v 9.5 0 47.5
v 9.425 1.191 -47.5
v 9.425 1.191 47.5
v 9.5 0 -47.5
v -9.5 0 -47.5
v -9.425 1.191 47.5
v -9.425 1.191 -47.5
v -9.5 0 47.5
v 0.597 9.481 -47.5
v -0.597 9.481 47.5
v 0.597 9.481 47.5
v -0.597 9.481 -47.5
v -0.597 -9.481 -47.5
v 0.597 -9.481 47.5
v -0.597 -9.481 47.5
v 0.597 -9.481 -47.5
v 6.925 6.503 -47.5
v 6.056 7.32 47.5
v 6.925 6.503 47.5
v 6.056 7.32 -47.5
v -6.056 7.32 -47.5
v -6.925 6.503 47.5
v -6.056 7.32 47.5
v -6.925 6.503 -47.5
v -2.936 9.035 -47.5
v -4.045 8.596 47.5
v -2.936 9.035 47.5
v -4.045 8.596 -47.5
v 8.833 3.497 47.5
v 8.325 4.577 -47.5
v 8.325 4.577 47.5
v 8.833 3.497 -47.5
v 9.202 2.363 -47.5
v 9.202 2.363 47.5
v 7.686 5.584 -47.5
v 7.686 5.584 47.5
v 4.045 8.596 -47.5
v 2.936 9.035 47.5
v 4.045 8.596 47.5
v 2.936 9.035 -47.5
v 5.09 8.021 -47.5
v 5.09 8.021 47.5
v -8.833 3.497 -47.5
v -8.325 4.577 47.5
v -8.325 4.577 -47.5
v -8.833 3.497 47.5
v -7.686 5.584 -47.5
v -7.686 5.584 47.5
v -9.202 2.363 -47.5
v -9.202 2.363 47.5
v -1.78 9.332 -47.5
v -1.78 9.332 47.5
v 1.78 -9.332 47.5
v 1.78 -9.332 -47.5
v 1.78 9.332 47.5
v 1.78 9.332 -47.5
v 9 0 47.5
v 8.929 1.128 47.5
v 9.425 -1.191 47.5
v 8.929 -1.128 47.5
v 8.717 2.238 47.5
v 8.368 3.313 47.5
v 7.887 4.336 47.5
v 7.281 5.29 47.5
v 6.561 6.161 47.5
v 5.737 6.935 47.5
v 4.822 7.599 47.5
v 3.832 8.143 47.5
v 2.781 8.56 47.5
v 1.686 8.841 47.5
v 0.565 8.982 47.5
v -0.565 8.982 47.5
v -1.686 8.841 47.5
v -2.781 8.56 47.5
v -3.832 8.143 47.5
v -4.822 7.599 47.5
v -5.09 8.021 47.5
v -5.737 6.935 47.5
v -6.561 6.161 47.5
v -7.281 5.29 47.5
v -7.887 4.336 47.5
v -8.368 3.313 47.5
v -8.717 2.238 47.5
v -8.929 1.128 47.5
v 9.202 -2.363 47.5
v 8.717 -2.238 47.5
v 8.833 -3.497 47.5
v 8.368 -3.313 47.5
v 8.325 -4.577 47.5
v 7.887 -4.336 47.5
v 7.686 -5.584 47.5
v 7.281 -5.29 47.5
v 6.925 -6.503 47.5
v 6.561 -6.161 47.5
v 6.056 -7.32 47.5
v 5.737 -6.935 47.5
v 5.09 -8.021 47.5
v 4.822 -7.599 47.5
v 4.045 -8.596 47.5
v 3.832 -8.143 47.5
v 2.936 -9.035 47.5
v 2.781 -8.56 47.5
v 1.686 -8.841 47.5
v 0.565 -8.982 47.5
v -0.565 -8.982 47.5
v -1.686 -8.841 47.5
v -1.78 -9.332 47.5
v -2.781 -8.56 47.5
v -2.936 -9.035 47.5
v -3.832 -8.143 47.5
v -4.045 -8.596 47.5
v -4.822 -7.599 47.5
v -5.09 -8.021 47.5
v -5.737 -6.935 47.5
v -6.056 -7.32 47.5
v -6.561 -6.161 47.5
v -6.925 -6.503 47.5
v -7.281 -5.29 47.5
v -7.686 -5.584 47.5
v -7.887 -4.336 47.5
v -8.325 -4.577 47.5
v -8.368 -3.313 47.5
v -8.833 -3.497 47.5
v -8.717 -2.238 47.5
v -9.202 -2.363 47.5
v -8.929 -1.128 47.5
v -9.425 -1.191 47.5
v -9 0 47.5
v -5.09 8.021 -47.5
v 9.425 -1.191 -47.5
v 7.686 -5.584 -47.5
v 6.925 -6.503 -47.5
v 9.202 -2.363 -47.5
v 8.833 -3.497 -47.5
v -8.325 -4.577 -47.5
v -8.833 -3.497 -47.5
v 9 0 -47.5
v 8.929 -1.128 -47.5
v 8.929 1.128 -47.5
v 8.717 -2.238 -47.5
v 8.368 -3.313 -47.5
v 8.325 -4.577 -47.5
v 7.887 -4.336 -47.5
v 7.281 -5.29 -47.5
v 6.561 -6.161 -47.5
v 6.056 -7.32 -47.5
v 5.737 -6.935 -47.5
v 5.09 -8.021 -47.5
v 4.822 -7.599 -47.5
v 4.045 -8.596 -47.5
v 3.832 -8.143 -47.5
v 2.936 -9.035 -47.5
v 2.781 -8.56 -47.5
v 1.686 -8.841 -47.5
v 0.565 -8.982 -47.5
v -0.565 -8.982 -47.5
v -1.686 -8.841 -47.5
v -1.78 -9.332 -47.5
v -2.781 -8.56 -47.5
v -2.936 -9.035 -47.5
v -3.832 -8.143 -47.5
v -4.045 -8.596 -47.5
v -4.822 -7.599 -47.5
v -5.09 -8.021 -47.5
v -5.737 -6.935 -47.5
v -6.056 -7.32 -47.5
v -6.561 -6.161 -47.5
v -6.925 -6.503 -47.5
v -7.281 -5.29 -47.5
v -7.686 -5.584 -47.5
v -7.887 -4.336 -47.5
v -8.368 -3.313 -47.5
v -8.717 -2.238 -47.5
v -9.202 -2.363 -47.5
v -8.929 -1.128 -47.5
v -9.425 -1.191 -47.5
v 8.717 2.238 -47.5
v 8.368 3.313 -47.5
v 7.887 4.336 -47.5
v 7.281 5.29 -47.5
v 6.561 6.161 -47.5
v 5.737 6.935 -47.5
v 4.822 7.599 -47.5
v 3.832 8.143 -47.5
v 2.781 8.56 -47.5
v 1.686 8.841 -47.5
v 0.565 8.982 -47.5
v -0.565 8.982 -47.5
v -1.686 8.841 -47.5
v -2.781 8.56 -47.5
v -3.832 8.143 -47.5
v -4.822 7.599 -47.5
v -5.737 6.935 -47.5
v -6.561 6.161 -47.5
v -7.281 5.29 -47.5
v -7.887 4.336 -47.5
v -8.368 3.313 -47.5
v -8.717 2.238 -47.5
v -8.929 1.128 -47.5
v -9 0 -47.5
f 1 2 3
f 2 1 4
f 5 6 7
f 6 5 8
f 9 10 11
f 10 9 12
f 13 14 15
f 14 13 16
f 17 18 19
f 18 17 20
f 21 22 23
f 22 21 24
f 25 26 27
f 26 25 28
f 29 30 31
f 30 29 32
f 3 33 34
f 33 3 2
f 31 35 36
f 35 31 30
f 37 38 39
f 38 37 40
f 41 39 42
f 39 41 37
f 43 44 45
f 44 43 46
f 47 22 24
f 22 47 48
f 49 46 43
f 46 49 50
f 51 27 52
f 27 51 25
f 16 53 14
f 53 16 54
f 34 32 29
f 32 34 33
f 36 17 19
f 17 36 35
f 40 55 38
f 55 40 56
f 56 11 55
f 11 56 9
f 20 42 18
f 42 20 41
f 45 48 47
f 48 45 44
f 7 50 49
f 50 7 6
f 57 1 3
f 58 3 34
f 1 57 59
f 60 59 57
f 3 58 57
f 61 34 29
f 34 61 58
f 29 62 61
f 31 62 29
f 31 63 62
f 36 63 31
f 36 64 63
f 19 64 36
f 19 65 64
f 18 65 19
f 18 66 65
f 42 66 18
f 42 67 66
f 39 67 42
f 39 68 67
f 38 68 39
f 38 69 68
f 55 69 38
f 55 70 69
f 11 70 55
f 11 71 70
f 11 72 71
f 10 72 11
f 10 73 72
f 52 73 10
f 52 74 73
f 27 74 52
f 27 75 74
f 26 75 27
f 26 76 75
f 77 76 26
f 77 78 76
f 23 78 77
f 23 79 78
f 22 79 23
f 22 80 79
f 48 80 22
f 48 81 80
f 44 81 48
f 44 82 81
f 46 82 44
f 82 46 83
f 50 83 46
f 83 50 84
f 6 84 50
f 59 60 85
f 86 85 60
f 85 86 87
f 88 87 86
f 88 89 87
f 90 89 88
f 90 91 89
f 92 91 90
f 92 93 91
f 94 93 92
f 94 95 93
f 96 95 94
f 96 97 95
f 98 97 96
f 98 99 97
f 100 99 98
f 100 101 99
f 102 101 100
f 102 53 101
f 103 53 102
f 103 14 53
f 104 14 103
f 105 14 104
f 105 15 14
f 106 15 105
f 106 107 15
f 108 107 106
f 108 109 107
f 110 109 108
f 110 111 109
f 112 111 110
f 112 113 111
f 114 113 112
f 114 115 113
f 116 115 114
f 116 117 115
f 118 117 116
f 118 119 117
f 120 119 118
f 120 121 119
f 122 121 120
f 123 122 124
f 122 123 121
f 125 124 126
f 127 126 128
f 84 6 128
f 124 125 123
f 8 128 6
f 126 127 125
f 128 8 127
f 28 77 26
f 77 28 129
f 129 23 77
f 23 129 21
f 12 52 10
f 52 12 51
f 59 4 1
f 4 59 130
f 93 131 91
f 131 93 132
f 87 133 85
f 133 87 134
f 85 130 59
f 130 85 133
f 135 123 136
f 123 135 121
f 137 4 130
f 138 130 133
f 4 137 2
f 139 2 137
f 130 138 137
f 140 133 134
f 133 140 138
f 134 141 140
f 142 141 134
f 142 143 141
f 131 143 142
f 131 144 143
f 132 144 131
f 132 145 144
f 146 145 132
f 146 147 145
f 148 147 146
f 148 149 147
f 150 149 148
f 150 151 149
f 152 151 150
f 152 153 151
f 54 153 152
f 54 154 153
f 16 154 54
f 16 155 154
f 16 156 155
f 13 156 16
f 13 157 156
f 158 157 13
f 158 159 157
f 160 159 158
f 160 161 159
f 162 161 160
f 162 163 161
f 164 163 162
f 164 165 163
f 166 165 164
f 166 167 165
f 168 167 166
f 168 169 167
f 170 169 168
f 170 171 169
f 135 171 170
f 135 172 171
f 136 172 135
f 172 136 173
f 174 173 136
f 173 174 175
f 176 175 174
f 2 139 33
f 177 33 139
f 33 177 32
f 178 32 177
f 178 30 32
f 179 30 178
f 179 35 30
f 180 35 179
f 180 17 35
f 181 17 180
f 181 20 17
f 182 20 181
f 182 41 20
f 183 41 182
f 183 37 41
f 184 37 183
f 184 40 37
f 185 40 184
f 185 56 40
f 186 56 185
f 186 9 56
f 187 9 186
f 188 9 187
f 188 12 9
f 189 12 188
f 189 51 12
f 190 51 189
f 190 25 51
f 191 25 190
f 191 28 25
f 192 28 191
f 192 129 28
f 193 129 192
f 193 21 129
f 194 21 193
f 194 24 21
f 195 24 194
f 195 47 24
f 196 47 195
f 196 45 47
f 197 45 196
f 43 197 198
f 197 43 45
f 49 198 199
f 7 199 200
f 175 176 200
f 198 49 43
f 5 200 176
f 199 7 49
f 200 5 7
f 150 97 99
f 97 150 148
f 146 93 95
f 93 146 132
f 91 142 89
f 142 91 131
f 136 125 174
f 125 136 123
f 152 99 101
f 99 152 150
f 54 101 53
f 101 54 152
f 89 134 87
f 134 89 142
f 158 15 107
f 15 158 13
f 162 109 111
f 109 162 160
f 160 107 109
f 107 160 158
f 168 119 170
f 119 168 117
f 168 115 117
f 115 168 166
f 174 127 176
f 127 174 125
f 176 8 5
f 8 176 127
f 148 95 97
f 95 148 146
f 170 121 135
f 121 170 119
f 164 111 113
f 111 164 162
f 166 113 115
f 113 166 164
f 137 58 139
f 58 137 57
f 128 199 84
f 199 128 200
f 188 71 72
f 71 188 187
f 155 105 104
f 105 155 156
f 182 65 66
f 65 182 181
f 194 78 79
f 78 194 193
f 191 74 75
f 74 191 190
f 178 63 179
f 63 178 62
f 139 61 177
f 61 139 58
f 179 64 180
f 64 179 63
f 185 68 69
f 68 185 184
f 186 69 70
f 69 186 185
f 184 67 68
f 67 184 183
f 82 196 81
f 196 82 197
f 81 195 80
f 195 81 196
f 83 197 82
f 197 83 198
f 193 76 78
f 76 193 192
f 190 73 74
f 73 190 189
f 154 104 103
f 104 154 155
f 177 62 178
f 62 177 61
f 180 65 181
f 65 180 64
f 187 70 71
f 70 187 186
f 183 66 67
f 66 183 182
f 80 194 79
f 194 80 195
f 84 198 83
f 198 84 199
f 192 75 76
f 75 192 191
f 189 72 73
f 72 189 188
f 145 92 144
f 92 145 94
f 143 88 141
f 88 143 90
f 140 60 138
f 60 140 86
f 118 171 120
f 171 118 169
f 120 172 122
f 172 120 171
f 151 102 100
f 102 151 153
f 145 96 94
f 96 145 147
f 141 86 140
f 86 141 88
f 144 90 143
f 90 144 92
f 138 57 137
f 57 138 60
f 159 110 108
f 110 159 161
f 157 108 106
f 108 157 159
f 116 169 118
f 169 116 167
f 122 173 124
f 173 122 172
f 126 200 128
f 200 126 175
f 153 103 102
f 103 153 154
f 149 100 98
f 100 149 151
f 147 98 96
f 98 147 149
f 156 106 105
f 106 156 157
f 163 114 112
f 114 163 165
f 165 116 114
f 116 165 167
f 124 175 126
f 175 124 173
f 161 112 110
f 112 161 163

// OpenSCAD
$fn = 50;


difference() {
	union() {
		translate(v = [0, 0, -47.5000000000]) {
			cylinder(h = 95, r = 9.5000000000);
		}
	}
	union() {
		translate(v = [0, 0, -100.0000000000]) {
			cylinder(h = 200, r = 9);
		}
	}
}
